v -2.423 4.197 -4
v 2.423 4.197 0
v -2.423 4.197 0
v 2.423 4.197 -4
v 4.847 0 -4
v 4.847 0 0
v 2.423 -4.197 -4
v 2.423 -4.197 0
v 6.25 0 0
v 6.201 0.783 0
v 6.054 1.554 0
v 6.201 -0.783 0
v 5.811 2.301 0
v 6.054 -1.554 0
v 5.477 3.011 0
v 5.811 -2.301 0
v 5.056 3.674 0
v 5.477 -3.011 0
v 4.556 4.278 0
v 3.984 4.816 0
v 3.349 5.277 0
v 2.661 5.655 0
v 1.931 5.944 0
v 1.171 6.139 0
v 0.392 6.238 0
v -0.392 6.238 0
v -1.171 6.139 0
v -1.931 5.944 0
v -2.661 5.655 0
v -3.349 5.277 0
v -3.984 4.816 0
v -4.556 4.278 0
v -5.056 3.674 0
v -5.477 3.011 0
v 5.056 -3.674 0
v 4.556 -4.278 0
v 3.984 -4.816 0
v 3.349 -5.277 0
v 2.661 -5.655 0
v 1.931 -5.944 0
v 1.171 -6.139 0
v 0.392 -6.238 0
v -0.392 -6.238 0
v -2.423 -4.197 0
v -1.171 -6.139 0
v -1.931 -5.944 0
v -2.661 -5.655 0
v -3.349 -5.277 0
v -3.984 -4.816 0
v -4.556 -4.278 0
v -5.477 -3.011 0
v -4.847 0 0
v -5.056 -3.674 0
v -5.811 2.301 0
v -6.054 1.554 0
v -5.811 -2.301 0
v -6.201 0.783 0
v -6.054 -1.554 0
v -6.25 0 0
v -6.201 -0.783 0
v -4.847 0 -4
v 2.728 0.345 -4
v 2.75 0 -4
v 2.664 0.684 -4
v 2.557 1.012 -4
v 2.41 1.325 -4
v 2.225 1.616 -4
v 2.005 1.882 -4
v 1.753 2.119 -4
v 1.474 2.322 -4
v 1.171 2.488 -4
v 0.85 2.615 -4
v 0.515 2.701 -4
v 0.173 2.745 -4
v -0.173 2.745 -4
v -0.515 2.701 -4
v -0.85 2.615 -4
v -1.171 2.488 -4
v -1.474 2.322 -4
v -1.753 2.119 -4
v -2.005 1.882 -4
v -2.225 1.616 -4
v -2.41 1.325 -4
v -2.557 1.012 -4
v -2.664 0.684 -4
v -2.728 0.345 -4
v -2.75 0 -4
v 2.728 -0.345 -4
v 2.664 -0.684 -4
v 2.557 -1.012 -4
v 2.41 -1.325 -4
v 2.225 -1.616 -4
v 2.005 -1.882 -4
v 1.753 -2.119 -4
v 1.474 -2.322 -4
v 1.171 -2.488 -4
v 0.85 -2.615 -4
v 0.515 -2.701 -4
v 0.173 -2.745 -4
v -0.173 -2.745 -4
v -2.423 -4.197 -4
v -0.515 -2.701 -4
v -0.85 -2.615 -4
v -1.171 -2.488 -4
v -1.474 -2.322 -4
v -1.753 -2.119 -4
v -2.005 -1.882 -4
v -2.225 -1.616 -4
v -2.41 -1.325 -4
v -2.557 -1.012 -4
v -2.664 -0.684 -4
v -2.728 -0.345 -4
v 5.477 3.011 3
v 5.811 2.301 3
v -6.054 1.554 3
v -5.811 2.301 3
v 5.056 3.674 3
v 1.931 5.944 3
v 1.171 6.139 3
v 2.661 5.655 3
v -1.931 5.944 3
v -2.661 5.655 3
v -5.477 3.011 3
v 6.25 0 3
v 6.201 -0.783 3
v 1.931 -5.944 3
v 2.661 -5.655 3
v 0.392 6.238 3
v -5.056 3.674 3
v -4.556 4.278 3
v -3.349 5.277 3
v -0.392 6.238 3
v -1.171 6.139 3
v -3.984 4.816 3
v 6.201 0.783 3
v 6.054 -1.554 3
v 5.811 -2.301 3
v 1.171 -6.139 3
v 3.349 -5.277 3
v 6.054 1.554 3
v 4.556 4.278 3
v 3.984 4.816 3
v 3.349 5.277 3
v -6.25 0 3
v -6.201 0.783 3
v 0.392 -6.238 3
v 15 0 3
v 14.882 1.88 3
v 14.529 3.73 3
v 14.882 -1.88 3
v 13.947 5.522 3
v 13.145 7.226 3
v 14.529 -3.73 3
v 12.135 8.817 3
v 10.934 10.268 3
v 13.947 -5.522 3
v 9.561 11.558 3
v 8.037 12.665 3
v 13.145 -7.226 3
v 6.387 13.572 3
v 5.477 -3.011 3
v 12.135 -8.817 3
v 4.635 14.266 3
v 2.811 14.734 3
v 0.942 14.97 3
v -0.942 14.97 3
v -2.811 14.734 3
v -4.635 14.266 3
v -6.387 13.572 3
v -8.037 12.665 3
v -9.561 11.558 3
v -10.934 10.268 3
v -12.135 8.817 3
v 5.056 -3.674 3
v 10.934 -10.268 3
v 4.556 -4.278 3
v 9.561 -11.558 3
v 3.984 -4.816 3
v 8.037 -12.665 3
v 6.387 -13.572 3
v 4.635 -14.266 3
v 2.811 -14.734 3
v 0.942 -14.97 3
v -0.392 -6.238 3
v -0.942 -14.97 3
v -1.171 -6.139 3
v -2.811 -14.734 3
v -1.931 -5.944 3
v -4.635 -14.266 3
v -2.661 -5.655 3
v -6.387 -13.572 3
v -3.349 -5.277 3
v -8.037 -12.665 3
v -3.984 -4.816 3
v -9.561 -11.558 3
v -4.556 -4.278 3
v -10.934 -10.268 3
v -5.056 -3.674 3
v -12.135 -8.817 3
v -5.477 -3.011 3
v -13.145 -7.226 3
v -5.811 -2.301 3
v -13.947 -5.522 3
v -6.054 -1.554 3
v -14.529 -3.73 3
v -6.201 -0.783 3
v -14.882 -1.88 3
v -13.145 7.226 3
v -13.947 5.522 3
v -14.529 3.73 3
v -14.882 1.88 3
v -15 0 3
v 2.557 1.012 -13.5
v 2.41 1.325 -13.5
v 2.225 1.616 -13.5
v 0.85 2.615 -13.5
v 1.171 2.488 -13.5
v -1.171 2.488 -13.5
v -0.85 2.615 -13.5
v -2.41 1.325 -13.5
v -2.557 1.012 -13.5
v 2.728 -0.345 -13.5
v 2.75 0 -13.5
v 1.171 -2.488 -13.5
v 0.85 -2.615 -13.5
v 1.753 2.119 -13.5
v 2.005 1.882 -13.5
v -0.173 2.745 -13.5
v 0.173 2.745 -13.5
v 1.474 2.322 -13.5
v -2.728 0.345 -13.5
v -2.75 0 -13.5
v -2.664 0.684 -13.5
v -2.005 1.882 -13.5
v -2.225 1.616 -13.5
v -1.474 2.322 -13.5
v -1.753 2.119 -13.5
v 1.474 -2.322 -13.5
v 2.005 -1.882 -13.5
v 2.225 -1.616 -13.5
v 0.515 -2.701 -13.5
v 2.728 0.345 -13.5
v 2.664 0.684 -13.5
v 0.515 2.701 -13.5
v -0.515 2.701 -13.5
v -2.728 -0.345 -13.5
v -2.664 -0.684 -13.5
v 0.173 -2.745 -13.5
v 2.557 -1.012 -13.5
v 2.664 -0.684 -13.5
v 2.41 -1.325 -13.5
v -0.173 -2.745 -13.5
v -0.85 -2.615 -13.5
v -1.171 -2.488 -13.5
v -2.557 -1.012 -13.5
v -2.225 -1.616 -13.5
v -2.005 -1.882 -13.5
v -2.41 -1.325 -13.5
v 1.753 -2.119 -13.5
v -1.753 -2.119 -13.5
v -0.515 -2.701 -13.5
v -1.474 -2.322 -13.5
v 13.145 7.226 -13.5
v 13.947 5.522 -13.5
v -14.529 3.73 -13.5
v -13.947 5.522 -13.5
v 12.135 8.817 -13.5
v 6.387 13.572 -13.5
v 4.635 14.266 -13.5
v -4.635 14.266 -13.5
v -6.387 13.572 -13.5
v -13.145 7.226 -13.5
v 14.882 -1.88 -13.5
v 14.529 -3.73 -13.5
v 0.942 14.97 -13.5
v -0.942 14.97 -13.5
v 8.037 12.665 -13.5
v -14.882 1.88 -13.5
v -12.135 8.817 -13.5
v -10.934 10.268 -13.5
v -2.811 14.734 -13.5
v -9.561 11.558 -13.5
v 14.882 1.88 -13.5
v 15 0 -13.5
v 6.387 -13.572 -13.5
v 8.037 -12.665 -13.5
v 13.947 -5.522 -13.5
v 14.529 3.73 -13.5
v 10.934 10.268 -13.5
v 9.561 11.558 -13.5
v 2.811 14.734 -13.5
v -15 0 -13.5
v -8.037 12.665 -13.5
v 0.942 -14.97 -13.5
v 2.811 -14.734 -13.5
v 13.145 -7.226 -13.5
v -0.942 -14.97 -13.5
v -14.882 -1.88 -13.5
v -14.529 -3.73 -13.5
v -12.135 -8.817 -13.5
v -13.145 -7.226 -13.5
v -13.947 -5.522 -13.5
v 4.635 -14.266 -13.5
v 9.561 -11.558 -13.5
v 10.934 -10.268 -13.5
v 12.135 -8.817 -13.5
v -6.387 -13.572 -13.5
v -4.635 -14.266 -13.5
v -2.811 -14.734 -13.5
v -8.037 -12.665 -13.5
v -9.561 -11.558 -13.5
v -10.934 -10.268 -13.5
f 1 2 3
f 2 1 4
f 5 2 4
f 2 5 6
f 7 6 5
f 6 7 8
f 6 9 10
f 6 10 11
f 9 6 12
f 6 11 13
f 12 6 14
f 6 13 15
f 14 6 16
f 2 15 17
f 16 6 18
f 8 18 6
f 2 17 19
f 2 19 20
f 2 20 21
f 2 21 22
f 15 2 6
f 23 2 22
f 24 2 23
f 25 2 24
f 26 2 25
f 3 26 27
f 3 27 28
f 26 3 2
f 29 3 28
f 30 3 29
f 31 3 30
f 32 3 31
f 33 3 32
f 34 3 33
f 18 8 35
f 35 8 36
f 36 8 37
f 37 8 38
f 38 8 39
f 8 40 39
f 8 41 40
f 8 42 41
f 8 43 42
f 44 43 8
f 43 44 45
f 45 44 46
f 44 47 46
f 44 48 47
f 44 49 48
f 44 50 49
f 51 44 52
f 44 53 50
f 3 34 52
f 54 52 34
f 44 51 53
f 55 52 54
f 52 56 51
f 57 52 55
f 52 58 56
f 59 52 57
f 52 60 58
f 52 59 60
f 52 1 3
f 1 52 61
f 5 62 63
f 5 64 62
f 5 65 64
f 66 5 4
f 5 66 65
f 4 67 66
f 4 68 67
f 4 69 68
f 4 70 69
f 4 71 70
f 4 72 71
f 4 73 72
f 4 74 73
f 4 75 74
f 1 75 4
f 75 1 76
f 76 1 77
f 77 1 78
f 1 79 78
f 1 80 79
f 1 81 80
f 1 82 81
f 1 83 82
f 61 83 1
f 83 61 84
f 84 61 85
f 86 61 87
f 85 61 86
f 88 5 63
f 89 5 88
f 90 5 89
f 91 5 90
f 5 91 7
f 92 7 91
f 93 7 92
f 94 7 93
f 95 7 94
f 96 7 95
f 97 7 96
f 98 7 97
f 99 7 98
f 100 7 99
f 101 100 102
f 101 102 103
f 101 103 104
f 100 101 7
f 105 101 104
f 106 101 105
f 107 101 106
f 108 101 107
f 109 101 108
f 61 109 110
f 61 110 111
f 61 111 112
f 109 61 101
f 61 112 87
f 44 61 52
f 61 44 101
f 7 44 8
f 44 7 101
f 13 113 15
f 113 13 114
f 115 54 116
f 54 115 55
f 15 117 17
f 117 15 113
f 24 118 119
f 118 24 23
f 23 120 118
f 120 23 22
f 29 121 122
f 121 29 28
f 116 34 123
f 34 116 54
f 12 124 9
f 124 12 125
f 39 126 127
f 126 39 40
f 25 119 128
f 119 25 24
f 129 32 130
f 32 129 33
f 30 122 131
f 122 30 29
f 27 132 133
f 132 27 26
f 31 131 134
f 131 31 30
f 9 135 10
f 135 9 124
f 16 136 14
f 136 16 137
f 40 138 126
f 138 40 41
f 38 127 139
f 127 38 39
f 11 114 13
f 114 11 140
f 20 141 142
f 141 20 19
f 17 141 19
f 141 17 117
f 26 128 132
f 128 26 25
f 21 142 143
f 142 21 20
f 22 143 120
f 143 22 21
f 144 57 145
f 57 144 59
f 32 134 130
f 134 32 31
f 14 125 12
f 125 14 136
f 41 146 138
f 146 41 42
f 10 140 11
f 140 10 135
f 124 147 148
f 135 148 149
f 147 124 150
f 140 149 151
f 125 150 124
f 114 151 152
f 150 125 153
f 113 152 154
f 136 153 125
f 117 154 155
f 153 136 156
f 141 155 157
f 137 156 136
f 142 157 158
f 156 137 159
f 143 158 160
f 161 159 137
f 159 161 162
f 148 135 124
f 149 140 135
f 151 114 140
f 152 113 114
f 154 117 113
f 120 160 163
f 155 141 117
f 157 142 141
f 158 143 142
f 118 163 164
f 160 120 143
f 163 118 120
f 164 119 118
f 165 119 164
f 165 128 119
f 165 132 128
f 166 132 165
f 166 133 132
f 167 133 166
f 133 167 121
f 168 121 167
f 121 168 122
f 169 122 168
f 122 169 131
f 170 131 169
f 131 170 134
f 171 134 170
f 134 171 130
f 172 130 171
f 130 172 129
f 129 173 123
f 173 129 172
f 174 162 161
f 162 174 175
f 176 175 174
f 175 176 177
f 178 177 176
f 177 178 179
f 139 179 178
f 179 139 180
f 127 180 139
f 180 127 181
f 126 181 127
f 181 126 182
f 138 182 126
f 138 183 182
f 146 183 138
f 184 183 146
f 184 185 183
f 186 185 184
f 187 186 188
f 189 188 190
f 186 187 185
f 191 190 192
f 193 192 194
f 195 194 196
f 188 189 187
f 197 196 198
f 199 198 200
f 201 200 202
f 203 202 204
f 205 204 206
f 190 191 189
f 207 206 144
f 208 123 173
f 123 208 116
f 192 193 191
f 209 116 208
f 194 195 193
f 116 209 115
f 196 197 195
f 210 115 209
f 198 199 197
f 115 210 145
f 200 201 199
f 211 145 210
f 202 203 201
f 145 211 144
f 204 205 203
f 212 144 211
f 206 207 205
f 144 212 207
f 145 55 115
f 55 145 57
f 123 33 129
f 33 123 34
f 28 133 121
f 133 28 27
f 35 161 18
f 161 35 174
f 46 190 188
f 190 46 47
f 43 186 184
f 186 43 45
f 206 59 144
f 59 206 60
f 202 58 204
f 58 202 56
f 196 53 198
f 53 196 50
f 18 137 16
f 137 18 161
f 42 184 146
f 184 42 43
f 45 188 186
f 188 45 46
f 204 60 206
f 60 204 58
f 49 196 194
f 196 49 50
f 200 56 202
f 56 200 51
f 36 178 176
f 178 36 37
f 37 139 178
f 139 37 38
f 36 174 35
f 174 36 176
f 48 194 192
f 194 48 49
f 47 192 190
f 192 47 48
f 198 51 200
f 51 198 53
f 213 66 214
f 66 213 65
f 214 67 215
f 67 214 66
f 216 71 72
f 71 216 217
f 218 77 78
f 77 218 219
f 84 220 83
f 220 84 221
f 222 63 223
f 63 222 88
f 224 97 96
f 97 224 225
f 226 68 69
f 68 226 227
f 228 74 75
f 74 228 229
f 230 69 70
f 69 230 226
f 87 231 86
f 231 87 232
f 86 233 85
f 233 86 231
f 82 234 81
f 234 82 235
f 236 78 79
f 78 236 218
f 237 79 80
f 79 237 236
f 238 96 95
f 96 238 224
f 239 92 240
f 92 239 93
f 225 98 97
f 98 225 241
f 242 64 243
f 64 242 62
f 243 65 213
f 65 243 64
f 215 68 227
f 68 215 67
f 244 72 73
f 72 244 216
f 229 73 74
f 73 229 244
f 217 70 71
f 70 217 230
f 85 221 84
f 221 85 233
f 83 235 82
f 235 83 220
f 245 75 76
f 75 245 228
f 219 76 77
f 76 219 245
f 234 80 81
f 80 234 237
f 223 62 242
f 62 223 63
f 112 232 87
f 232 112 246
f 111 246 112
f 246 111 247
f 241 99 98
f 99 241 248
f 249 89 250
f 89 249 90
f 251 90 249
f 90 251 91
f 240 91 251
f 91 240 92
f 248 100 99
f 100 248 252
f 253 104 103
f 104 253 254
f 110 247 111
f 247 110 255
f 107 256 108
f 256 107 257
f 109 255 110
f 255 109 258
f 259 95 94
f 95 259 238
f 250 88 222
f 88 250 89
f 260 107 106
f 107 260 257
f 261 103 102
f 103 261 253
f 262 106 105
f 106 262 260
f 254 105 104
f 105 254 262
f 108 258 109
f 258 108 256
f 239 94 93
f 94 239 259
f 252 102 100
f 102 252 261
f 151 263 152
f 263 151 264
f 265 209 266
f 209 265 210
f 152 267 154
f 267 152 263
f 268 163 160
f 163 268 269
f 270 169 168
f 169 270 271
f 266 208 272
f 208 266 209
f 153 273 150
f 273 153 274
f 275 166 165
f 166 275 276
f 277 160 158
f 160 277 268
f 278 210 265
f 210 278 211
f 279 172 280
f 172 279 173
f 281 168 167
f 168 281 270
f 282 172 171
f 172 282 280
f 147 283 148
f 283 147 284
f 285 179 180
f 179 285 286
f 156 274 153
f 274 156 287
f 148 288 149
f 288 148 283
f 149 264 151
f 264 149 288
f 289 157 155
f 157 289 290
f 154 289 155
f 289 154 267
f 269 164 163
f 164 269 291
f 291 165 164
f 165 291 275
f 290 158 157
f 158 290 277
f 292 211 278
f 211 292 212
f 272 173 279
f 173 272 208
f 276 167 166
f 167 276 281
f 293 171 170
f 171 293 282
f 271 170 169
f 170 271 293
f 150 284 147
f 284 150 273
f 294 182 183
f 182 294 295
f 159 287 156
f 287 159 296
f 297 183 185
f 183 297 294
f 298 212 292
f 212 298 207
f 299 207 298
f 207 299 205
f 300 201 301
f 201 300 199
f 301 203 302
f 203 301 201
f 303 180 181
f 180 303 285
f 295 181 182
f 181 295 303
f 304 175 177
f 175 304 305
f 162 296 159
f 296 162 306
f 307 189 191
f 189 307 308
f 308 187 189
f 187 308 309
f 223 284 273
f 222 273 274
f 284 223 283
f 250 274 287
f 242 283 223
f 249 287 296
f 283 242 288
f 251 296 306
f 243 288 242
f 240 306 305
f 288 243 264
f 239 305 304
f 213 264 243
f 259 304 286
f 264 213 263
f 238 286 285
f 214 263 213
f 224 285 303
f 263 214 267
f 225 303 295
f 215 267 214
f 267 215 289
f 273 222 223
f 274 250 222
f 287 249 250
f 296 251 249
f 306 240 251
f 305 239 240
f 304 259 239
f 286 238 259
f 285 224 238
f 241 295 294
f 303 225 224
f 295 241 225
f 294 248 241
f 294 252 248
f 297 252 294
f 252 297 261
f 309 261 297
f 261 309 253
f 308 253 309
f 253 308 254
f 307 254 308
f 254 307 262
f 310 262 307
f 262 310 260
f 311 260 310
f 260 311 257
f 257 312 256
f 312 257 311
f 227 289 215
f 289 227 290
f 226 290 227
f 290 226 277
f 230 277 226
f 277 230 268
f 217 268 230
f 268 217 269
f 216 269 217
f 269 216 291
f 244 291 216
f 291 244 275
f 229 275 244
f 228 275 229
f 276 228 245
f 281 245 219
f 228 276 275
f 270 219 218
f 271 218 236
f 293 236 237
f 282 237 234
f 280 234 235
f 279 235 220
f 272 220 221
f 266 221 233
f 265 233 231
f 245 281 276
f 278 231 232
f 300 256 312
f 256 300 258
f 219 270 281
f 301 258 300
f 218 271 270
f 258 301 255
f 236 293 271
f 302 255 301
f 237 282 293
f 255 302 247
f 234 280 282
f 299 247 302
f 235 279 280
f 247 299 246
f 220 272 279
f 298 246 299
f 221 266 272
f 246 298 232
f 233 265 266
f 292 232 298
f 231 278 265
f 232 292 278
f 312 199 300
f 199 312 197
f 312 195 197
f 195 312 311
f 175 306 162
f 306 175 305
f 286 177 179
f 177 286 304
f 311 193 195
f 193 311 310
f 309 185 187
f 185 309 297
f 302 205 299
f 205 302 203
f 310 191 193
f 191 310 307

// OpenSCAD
$fn = 50;


difference() {
	union() {
		translate(v = [0, 0, -13.5000000000]) {
			cylinder(h = 16.5000000000, r = 15.0000000000);
		}
	}
	union() {
		translate(v = [0, 0, 0]) {
			rotate(a = [0, 0, 0]) {
				difference() {
					union() {
						translate(v = [0, 0, -4]) {
							linear_extrude(height = 4) {
								polygon(points = [[4.8468000000, 0.0000000000], [2.4234000000, 4.1974519271], [-2.4234000000, 4.1974519271], [-4.8468000000, 0.0000000000], [-2.4234000000, -4.1974519271], [2.4234000000, -4.1974519271]]);
							}
						}
					}
					union();
				}
			}
		}
		#cylinder(h = 3, r = 6.2500000000);
		#translate(v = [0, 0, -100.0000000000]) {
			cylinder(h = 200, r = 2.7500000000);
		}
	}
}
